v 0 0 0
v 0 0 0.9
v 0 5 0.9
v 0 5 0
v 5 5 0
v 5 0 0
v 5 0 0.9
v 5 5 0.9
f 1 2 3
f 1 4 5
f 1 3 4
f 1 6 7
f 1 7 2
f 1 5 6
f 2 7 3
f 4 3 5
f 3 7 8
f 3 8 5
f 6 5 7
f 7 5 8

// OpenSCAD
/* Warning, this is a very basic generator with a lot of approximation 
input data : [VQFN, PBA, 5x5x0.9mm, 28, , A, C04-01038A]
generated by com.zoubworld.electronics.cad.model3d.Basic
Date : Sun Feb 15 10:50:49 CET 2026
*/

//body
color("black")
translate([0,0,0])
cube([5.0,5.0,0.9], center=false);
